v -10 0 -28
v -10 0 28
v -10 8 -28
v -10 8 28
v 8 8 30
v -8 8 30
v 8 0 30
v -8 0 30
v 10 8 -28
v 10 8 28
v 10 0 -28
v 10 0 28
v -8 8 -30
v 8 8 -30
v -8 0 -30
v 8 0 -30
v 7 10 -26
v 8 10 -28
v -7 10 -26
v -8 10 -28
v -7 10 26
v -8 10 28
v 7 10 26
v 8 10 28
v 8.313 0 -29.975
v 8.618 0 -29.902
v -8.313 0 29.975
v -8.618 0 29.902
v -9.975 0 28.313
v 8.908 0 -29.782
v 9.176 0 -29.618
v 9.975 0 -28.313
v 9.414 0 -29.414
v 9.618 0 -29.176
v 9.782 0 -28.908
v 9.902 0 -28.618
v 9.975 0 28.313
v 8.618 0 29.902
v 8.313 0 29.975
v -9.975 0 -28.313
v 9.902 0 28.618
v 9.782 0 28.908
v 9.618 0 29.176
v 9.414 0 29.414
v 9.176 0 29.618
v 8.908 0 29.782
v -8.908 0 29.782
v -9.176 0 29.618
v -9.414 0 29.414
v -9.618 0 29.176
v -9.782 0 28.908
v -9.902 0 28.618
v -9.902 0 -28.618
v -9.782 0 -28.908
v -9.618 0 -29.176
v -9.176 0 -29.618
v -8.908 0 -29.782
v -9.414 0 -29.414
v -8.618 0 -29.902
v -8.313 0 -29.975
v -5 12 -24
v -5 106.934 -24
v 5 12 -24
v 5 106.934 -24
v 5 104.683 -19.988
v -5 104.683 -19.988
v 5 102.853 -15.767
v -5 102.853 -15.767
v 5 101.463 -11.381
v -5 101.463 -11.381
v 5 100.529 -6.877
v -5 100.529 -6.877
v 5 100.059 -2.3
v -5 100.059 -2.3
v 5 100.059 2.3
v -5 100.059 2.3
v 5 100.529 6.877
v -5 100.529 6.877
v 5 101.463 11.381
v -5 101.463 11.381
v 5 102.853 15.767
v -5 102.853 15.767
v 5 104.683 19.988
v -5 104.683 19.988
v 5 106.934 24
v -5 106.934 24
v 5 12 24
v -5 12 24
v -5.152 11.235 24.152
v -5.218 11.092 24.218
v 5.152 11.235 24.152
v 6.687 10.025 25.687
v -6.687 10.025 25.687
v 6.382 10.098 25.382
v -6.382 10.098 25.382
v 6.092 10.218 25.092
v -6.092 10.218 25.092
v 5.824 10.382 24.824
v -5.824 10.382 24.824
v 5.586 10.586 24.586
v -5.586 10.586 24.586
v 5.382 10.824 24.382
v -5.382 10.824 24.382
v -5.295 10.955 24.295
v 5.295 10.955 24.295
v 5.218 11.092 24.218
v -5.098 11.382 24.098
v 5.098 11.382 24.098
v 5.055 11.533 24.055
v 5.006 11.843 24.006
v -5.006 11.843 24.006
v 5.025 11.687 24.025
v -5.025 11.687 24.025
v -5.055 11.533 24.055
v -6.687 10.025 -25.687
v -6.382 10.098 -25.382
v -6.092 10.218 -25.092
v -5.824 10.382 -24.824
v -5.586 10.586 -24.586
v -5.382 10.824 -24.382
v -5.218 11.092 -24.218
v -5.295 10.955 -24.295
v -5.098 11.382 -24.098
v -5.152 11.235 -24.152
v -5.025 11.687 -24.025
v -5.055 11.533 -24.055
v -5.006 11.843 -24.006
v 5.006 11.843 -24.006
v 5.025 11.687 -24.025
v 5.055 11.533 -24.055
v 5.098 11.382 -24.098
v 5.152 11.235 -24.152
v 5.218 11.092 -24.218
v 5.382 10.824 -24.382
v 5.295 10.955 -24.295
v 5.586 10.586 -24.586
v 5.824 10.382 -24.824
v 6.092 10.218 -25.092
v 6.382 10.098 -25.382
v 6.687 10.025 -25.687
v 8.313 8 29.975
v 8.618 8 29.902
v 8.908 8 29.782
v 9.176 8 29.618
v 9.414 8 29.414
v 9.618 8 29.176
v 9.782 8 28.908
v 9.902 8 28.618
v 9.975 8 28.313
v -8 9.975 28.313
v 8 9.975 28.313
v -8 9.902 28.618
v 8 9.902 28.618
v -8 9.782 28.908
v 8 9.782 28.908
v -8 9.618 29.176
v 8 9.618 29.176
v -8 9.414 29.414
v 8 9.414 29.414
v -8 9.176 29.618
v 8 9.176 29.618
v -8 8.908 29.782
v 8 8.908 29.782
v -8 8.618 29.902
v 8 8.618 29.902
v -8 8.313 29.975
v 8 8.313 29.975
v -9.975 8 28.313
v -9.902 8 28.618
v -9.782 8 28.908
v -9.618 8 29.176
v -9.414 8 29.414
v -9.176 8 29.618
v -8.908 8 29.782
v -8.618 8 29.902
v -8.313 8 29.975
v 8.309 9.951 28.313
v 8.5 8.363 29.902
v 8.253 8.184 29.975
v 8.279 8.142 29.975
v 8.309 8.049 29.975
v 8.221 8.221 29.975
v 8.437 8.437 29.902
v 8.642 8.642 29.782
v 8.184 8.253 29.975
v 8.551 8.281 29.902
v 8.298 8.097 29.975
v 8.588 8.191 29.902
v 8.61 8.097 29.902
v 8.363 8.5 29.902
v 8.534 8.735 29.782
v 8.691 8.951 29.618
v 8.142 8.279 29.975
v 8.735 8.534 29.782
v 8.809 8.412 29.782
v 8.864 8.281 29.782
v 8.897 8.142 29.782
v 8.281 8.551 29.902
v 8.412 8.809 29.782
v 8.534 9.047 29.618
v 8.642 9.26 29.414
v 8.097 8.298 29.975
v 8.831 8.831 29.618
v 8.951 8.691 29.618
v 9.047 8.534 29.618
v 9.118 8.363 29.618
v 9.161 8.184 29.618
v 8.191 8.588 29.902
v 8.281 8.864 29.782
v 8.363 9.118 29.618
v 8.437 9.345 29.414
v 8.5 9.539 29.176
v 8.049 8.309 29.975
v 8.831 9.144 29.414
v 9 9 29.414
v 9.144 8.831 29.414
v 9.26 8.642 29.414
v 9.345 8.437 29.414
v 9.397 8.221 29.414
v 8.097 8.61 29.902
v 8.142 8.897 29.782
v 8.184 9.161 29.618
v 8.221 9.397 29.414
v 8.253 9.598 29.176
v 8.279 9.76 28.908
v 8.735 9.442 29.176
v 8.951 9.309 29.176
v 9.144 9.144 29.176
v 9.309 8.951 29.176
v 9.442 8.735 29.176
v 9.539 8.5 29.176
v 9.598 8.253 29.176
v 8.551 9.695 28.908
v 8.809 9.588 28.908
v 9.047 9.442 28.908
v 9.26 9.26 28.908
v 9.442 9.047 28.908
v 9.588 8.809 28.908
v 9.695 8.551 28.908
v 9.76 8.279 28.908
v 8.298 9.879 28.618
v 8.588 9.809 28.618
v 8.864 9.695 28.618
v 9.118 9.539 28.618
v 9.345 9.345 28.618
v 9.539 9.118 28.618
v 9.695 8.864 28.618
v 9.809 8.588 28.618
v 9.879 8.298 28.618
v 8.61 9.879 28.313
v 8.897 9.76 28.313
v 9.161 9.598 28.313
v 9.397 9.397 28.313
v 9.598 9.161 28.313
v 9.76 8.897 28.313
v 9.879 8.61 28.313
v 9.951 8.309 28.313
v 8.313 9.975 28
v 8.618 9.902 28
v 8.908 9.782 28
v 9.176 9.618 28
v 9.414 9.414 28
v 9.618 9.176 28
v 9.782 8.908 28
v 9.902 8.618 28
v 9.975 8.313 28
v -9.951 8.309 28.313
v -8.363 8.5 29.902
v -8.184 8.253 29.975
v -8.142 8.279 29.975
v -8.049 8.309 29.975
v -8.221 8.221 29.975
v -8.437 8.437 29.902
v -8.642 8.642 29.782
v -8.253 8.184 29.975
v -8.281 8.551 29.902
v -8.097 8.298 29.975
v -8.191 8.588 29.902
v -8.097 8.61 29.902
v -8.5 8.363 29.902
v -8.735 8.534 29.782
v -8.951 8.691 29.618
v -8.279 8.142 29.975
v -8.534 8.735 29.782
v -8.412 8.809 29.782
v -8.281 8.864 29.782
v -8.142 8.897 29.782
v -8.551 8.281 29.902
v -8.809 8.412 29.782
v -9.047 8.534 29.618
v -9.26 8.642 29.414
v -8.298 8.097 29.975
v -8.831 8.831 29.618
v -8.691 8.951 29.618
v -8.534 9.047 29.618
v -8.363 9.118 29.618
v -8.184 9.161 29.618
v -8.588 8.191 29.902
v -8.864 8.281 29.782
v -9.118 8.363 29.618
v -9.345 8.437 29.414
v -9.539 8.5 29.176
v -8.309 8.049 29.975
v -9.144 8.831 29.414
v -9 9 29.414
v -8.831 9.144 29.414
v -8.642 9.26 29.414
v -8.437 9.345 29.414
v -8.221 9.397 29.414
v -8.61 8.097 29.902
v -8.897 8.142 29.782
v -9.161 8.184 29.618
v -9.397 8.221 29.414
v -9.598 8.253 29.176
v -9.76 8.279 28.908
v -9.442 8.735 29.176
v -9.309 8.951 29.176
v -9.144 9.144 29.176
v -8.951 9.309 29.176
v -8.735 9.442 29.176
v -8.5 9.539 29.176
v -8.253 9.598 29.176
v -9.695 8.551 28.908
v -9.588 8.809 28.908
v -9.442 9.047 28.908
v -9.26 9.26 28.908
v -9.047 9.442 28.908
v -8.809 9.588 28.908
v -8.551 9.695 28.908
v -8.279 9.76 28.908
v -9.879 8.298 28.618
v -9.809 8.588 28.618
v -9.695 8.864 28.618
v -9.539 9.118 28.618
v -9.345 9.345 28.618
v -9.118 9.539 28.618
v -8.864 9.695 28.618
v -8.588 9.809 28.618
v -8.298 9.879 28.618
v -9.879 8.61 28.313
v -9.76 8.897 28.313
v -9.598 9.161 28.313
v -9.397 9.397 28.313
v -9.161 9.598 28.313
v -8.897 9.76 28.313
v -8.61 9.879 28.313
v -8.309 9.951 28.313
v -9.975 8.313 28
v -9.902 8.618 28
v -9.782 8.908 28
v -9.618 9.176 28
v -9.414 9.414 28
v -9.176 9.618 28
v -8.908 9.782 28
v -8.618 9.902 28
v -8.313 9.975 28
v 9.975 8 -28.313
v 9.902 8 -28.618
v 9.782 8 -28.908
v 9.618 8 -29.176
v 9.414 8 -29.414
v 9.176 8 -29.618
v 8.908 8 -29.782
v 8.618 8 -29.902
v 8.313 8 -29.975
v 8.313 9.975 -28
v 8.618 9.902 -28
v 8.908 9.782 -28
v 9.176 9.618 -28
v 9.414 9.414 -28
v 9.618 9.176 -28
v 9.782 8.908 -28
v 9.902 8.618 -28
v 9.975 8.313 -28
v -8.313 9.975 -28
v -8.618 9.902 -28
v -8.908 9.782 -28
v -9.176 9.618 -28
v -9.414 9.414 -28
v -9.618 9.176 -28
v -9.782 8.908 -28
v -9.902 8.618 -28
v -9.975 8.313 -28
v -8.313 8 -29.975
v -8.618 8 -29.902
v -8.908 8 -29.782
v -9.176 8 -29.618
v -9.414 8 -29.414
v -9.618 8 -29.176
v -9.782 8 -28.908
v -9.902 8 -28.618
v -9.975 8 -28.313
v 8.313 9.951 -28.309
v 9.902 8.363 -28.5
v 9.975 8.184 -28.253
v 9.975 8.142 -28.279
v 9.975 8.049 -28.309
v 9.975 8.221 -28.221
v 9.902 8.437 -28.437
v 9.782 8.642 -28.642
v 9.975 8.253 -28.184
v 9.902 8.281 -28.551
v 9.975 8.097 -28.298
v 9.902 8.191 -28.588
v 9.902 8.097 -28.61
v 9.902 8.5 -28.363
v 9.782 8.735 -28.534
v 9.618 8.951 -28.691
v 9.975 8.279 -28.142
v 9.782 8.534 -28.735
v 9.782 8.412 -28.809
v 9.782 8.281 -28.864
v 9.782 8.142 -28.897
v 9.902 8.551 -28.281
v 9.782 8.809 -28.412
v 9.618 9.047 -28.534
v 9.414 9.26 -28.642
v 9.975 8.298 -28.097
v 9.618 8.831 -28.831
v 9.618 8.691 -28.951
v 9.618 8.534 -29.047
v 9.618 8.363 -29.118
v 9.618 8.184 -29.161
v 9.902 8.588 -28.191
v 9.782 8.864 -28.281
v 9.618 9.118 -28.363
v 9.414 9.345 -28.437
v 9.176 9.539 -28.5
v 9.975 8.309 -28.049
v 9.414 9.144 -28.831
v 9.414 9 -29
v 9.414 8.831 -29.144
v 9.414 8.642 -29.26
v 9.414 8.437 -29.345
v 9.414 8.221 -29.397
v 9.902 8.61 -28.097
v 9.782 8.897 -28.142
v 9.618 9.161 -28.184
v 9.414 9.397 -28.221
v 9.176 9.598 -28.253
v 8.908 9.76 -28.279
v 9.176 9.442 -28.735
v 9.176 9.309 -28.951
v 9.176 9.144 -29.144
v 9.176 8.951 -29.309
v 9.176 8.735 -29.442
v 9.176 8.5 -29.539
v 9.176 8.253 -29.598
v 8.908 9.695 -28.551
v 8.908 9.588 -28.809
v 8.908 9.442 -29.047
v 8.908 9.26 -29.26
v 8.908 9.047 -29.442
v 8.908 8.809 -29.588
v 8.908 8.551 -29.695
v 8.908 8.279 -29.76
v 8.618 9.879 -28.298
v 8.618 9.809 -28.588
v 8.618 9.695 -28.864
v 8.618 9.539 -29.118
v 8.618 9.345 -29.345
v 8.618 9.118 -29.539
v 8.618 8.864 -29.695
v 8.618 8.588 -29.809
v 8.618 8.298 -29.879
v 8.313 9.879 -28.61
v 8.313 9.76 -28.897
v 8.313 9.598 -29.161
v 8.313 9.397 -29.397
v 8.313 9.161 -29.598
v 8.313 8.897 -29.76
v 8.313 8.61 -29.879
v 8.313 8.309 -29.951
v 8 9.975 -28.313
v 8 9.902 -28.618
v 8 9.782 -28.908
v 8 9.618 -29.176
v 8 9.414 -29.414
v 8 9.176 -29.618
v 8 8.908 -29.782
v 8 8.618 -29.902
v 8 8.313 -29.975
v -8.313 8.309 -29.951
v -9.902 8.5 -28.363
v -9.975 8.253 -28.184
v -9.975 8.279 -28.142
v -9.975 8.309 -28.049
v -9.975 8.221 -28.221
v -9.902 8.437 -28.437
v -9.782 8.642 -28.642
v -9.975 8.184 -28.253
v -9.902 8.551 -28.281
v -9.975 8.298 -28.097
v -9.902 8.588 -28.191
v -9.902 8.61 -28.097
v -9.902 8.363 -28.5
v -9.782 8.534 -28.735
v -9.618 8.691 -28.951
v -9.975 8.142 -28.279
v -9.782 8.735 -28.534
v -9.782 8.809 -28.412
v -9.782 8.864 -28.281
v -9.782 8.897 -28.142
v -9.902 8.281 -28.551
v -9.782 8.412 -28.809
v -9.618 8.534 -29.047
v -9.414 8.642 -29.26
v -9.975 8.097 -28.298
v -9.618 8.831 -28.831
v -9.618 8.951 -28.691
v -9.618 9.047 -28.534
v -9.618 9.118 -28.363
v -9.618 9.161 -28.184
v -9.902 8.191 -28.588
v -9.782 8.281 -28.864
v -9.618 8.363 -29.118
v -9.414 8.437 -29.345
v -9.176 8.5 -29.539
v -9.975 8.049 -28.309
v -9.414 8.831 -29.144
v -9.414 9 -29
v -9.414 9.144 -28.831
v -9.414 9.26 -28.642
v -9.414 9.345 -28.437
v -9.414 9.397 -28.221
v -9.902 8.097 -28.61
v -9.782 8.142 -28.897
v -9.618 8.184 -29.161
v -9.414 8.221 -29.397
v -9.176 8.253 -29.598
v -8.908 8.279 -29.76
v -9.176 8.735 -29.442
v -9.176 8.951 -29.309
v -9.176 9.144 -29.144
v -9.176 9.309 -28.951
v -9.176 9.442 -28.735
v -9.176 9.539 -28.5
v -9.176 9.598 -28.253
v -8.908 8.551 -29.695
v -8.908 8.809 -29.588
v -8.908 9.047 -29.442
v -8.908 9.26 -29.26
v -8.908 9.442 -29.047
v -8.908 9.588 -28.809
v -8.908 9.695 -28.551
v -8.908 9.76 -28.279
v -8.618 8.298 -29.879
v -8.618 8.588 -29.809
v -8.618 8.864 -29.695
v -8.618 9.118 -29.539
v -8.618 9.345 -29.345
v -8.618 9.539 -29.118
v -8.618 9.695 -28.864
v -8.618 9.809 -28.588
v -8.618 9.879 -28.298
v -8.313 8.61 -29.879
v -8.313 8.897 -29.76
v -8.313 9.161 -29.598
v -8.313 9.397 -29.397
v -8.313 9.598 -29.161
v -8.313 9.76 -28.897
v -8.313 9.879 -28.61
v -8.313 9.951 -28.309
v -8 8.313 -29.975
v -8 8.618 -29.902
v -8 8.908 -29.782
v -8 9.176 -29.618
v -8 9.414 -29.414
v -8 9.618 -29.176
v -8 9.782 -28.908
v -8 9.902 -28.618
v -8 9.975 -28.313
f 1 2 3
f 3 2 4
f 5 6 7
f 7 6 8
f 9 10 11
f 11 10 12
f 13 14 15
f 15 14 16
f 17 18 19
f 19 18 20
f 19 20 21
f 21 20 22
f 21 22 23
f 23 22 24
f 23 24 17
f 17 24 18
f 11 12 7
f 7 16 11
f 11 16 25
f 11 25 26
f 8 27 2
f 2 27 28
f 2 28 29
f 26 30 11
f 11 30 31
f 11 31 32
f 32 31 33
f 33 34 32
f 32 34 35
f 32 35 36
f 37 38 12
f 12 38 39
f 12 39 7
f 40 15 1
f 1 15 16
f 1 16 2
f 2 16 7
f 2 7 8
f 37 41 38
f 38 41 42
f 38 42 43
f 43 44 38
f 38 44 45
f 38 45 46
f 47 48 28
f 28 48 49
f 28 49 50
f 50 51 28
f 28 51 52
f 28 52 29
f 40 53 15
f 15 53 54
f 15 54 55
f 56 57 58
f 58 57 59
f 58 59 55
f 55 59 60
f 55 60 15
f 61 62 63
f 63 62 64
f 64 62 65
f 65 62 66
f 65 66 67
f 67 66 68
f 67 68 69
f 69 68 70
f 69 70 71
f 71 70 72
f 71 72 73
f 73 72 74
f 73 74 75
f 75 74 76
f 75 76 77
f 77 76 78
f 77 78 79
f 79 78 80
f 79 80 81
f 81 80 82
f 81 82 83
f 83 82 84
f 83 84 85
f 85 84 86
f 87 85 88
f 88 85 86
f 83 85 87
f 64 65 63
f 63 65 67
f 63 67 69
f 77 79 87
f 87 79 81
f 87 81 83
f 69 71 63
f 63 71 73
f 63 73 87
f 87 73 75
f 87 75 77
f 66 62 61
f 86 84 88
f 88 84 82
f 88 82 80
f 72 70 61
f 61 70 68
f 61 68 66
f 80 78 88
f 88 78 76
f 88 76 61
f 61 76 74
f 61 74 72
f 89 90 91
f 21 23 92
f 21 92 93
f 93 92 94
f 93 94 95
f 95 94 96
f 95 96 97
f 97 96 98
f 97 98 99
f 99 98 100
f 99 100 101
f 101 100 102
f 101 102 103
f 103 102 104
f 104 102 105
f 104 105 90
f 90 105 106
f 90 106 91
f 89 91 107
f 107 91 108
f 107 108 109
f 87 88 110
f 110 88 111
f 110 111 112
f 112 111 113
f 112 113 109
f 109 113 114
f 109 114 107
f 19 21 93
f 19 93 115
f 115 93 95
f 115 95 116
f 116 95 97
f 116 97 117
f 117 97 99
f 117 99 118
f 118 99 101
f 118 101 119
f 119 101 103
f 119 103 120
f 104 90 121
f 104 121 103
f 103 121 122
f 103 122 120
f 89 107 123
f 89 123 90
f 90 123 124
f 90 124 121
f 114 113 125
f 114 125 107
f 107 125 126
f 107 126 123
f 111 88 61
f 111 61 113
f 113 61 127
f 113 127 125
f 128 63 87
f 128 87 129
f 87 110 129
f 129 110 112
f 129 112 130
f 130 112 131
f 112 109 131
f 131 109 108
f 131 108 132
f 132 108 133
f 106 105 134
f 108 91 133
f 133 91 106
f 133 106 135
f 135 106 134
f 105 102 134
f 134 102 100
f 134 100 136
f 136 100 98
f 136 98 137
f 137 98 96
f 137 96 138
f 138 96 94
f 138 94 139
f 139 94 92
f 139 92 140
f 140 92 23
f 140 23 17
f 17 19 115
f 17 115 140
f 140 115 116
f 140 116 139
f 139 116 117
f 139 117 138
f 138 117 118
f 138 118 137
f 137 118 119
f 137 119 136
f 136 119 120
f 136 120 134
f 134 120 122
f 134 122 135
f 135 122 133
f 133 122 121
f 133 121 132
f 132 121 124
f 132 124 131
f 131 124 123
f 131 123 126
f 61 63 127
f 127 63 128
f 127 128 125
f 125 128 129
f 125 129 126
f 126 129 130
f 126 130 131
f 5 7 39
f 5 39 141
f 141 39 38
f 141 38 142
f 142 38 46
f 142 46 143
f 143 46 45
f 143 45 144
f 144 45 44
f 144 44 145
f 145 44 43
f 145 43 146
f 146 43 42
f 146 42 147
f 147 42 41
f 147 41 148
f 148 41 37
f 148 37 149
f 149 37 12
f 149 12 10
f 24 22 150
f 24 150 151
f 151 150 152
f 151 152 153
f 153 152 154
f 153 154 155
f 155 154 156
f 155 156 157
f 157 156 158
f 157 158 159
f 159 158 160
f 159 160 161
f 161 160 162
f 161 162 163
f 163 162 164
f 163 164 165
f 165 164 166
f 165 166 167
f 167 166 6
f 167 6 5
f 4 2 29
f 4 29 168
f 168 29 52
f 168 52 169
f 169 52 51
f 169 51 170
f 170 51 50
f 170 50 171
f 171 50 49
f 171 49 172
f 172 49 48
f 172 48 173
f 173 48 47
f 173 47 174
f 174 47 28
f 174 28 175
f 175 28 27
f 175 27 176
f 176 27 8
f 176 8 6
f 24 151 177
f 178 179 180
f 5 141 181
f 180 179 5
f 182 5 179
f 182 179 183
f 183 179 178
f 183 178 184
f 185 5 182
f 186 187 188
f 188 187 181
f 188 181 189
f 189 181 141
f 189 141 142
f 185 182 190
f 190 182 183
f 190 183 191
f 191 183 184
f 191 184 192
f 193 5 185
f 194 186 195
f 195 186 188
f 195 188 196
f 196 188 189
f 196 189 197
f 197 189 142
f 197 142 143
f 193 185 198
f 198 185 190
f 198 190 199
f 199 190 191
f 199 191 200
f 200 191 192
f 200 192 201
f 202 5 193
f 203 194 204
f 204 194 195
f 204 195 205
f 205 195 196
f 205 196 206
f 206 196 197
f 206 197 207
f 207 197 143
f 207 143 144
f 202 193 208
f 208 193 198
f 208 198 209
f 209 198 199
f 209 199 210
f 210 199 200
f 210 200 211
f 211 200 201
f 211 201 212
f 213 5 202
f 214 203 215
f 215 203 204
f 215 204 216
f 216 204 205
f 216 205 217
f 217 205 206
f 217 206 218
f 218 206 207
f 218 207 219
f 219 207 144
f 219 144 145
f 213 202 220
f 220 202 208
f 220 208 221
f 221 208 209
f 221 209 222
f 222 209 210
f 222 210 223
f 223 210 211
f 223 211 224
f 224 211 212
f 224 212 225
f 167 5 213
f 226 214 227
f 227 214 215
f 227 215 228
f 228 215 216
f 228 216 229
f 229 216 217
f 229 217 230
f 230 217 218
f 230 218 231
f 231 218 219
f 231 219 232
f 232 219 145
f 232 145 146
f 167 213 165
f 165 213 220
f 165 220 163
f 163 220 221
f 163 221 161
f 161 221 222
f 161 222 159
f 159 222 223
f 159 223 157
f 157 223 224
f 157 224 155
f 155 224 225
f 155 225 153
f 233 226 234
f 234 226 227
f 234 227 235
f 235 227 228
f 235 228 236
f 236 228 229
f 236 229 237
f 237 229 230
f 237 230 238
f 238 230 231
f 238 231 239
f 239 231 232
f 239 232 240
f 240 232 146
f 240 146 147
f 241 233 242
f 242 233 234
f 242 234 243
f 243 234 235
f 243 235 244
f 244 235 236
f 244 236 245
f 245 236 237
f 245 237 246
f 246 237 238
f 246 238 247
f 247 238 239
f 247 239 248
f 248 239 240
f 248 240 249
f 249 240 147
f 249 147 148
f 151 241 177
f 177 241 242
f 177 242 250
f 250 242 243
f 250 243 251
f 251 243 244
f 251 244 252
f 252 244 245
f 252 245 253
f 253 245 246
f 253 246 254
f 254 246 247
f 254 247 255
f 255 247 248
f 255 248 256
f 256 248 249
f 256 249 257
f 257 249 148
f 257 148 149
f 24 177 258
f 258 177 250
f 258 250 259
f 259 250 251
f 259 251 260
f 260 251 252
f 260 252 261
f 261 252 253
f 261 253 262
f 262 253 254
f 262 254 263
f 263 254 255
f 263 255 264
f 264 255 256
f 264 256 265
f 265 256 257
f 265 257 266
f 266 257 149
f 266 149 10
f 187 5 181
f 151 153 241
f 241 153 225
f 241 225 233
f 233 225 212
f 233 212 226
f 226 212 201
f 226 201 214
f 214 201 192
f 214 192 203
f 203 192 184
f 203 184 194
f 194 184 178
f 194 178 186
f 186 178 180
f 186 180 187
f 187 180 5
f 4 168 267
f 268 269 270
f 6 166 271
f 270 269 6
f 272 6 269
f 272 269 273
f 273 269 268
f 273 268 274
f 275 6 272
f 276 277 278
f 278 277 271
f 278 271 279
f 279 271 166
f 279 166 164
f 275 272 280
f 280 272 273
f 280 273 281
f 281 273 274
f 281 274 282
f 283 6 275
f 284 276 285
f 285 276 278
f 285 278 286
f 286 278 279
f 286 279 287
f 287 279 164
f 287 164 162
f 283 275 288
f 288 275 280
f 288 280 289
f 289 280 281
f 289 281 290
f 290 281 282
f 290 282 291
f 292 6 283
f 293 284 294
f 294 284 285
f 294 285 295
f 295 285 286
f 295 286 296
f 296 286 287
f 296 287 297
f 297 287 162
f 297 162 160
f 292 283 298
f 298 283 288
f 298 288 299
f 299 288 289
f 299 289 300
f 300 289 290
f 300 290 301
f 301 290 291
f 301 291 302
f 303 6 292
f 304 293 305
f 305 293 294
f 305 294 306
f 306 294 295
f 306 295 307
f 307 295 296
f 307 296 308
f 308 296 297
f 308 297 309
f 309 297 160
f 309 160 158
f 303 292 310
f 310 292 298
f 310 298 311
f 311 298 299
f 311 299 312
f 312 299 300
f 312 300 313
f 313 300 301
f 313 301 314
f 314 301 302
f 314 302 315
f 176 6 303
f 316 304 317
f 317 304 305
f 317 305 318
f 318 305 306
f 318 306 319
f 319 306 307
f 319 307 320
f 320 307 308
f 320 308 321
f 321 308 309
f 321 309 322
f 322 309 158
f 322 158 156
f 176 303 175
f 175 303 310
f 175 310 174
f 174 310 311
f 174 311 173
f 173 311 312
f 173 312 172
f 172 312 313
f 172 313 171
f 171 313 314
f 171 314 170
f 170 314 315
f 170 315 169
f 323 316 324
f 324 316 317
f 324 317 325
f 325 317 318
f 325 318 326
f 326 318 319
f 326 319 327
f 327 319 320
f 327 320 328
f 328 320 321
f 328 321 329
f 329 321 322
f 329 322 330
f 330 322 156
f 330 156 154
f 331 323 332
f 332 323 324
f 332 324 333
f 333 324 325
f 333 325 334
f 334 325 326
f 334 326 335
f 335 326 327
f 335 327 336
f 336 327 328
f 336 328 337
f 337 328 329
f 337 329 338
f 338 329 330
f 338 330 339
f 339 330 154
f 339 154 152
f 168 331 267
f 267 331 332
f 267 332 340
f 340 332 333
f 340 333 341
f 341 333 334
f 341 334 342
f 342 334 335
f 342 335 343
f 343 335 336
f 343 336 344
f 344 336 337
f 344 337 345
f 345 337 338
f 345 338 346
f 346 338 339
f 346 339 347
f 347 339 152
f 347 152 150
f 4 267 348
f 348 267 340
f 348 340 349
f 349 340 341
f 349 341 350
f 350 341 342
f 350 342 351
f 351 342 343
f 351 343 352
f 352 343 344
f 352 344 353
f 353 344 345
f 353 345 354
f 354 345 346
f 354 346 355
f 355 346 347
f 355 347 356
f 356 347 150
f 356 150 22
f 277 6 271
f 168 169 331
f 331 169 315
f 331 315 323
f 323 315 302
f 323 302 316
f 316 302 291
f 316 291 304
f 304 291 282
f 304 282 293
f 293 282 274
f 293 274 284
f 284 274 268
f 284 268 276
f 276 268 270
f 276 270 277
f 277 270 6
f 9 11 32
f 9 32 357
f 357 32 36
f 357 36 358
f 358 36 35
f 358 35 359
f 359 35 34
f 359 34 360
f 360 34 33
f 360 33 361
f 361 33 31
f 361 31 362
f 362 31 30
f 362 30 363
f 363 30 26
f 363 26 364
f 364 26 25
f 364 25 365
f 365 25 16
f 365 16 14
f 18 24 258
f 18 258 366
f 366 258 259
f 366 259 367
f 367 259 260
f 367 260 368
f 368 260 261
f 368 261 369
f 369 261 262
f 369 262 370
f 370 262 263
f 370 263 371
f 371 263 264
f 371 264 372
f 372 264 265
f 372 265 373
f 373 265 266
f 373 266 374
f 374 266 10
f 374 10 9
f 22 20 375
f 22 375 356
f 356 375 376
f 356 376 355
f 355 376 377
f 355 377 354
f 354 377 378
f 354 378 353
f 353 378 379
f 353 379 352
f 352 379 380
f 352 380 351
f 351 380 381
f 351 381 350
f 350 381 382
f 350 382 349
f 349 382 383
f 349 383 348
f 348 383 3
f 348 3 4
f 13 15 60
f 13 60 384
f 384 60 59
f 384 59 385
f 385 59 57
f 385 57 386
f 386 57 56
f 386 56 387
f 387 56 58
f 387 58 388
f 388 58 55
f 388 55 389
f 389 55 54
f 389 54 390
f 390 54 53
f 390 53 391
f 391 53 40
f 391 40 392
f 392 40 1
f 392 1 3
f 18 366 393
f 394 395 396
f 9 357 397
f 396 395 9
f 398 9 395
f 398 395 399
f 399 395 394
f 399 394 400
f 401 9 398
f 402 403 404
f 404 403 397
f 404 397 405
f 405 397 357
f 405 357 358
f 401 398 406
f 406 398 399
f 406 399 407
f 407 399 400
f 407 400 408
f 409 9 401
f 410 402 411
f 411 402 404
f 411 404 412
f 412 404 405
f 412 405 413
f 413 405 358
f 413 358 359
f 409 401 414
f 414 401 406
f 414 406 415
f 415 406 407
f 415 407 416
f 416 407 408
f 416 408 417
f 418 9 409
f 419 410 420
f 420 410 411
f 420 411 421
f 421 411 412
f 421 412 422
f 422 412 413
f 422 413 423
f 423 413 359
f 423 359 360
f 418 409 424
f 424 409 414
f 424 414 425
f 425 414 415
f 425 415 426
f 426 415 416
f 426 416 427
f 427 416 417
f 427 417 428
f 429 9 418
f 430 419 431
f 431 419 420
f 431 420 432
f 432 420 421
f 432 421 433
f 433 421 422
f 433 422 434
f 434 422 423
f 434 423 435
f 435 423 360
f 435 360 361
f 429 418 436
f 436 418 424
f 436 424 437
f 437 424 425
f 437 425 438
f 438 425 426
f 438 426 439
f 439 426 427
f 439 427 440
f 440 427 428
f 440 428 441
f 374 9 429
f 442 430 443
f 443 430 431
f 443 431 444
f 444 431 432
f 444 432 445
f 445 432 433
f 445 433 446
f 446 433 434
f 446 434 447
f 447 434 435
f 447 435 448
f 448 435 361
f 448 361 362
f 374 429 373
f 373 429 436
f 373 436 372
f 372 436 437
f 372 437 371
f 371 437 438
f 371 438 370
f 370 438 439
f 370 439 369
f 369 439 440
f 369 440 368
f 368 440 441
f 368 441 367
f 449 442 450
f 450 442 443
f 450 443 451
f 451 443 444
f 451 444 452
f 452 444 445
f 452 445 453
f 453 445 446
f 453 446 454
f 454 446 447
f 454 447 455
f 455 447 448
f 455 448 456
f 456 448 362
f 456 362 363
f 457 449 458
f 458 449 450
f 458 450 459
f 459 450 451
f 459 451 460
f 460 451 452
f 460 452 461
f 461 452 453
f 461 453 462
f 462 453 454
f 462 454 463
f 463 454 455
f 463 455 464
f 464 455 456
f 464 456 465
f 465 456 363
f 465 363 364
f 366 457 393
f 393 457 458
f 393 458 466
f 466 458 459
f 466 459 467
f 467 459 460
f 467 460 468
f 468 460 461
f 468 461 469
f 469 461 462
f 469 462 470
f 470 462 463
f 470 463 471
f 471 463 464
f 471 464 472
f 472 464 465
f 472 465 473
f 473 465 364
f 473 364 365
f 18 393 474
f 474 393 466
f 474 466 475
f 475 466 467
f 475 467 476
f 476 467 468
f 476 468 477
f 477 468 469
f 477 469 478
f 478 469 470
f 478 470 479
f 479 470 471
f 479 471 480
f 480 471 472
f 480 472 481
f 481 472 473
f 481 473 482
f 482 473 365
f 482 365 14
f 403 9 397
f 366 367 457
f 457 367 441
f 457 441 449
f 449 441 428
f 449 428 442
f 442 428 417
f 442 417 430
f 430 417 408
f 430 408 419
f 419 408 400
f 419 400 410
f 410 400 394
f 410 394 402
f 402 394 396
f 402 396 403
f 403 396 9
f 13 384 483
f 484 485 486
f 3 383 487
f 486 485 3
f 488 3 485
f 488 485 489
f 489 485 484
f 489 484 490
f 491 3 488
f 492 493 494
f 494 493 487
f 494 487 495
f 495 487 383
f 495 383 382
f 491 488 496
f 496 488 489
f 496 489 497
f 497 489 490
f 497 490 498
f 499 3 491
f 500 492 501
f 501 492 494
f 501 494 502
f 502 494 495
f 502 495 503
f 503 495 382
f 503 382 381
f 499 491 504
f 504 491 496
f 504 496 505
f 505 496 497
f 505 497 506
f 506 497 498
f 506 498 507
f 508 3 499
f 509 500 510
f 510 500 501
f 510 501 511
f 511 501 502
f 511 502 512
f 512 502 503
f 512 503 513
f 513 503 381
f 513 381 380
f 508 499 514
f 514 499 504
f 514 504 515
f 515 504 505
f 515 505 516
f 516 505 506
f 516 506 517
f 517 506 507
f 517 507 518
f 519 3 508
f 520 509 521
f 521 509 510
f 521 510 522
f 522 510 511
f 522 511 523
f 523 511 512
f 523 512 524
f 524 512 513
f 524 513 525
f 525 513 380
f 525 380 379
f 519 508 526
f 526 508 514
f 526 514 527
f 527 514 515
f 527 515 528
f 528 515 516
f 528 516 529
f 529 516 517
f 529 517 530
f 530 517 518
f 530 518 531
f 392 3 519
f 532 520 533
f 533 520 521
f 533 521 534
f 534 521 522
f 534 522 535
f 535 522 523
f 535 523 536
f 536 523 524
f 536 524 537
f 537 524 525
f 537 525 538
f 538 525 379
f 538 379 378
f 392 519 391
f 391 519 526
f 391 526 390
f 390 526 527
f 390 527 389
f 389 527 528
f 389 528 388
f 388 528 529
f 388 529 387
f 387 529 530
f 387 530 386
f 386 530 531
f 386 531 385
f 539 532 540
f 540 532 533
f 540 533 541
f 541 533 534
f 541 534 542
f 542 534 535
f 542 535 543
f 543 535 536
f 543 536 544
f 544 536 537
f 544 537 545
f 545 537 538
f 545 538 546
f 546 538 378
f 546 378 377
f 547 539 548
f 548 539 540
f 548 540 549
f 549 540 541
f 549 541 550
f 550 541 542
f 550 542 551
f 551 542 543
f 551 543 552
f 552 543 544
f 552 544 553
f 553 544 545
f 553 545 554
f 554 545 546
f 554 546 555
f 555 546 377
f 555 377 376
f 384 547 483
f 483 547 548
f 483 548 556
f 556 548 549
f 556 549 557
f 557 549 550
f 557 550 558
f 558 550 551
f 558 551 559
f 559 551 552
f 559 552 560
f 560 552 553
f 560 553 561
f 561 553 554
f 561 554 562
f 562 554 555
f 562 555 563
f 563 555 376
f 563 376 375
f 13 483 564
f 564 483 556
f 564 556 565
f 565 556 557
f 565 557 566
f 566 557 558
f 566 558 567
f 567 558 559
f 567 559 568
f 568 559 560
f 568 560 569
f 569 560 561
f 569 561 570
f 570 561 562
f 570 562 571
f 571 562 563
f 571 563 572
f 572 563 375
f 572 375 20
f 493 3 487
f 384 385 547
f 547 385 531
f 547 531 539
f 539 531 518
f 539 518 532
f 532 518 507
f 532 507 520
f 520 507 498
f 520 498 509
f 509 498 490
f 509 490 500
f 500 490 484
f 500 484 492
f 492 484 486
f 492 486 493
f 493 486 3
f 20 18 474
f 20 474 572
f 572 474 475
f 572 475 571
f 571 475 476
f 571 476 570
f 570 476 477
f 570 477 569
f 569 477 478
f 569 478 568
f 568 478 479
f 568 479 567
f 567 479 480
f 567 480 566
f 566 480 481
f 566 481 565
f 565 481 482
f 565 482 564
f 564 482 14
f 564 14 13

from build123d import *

# Parameters (mm, degrees)
SKETCH_1_W      = 20
SKETCH_1_H      = 60
EXTRUDE_1_DEPTH = 10
EXTRUDE_3_DEPTH = 5
FILLET_1_R      = 2


with BuildPart() as part:
    # 스케치1 → 보스-돌출1 (new body)
    with BuildSketch(Plane(origin=(0, 0, 0), x_dir=(1, 0, 0), z_dir=(0, 1, 0))):
        Rectangle(SKETCH_1_W, SKETCH_1_H)
    extrude(amount=EXTRUDE_1_DEPTH)

    # 스케치5 → 보스-돌출3 (add, symmetric)
    with BuildSketch(Plane(origin=(0, 0, 0), x_dir=(0, 0, -1), z_dir=(1, 0, 0))):
        with BuildLine():
            Line((-24, 0), (24, 0))
            Line((24, 0), (24, 100))
            Line((24, 100), (24, 106.934267379))
            ThreePointArc((24, 106.934267379), (0, 100), (-24, 106.934267379))
            Line((-24, 106.934267379), (-24, 100))
            Line((-24, 100), (-24, 0))
        make_face()
    extrude(amount=EXTRUDE_3_DEPTH, both=True)

    # 필렛1
    fillet_1_edges = [part.edges().sort_by_distance(p)[0] for p in [
        (10, 10, 0),
        (0, 10, -30),
        (0, 10, -24),
        (0, 10, 24),
        (-5, 10, 0),
        (5, 10, 0),
        (-10, 10, 0),
        (-10, 5, -30),
        (10, 5, -30),
        (10, 5, 30),
        (-10, 5, 30),
        (0, 10, 30),
    ]]
    fillet(fillet_1_edges, radius=FILLET_1_R)


solid = part.part
